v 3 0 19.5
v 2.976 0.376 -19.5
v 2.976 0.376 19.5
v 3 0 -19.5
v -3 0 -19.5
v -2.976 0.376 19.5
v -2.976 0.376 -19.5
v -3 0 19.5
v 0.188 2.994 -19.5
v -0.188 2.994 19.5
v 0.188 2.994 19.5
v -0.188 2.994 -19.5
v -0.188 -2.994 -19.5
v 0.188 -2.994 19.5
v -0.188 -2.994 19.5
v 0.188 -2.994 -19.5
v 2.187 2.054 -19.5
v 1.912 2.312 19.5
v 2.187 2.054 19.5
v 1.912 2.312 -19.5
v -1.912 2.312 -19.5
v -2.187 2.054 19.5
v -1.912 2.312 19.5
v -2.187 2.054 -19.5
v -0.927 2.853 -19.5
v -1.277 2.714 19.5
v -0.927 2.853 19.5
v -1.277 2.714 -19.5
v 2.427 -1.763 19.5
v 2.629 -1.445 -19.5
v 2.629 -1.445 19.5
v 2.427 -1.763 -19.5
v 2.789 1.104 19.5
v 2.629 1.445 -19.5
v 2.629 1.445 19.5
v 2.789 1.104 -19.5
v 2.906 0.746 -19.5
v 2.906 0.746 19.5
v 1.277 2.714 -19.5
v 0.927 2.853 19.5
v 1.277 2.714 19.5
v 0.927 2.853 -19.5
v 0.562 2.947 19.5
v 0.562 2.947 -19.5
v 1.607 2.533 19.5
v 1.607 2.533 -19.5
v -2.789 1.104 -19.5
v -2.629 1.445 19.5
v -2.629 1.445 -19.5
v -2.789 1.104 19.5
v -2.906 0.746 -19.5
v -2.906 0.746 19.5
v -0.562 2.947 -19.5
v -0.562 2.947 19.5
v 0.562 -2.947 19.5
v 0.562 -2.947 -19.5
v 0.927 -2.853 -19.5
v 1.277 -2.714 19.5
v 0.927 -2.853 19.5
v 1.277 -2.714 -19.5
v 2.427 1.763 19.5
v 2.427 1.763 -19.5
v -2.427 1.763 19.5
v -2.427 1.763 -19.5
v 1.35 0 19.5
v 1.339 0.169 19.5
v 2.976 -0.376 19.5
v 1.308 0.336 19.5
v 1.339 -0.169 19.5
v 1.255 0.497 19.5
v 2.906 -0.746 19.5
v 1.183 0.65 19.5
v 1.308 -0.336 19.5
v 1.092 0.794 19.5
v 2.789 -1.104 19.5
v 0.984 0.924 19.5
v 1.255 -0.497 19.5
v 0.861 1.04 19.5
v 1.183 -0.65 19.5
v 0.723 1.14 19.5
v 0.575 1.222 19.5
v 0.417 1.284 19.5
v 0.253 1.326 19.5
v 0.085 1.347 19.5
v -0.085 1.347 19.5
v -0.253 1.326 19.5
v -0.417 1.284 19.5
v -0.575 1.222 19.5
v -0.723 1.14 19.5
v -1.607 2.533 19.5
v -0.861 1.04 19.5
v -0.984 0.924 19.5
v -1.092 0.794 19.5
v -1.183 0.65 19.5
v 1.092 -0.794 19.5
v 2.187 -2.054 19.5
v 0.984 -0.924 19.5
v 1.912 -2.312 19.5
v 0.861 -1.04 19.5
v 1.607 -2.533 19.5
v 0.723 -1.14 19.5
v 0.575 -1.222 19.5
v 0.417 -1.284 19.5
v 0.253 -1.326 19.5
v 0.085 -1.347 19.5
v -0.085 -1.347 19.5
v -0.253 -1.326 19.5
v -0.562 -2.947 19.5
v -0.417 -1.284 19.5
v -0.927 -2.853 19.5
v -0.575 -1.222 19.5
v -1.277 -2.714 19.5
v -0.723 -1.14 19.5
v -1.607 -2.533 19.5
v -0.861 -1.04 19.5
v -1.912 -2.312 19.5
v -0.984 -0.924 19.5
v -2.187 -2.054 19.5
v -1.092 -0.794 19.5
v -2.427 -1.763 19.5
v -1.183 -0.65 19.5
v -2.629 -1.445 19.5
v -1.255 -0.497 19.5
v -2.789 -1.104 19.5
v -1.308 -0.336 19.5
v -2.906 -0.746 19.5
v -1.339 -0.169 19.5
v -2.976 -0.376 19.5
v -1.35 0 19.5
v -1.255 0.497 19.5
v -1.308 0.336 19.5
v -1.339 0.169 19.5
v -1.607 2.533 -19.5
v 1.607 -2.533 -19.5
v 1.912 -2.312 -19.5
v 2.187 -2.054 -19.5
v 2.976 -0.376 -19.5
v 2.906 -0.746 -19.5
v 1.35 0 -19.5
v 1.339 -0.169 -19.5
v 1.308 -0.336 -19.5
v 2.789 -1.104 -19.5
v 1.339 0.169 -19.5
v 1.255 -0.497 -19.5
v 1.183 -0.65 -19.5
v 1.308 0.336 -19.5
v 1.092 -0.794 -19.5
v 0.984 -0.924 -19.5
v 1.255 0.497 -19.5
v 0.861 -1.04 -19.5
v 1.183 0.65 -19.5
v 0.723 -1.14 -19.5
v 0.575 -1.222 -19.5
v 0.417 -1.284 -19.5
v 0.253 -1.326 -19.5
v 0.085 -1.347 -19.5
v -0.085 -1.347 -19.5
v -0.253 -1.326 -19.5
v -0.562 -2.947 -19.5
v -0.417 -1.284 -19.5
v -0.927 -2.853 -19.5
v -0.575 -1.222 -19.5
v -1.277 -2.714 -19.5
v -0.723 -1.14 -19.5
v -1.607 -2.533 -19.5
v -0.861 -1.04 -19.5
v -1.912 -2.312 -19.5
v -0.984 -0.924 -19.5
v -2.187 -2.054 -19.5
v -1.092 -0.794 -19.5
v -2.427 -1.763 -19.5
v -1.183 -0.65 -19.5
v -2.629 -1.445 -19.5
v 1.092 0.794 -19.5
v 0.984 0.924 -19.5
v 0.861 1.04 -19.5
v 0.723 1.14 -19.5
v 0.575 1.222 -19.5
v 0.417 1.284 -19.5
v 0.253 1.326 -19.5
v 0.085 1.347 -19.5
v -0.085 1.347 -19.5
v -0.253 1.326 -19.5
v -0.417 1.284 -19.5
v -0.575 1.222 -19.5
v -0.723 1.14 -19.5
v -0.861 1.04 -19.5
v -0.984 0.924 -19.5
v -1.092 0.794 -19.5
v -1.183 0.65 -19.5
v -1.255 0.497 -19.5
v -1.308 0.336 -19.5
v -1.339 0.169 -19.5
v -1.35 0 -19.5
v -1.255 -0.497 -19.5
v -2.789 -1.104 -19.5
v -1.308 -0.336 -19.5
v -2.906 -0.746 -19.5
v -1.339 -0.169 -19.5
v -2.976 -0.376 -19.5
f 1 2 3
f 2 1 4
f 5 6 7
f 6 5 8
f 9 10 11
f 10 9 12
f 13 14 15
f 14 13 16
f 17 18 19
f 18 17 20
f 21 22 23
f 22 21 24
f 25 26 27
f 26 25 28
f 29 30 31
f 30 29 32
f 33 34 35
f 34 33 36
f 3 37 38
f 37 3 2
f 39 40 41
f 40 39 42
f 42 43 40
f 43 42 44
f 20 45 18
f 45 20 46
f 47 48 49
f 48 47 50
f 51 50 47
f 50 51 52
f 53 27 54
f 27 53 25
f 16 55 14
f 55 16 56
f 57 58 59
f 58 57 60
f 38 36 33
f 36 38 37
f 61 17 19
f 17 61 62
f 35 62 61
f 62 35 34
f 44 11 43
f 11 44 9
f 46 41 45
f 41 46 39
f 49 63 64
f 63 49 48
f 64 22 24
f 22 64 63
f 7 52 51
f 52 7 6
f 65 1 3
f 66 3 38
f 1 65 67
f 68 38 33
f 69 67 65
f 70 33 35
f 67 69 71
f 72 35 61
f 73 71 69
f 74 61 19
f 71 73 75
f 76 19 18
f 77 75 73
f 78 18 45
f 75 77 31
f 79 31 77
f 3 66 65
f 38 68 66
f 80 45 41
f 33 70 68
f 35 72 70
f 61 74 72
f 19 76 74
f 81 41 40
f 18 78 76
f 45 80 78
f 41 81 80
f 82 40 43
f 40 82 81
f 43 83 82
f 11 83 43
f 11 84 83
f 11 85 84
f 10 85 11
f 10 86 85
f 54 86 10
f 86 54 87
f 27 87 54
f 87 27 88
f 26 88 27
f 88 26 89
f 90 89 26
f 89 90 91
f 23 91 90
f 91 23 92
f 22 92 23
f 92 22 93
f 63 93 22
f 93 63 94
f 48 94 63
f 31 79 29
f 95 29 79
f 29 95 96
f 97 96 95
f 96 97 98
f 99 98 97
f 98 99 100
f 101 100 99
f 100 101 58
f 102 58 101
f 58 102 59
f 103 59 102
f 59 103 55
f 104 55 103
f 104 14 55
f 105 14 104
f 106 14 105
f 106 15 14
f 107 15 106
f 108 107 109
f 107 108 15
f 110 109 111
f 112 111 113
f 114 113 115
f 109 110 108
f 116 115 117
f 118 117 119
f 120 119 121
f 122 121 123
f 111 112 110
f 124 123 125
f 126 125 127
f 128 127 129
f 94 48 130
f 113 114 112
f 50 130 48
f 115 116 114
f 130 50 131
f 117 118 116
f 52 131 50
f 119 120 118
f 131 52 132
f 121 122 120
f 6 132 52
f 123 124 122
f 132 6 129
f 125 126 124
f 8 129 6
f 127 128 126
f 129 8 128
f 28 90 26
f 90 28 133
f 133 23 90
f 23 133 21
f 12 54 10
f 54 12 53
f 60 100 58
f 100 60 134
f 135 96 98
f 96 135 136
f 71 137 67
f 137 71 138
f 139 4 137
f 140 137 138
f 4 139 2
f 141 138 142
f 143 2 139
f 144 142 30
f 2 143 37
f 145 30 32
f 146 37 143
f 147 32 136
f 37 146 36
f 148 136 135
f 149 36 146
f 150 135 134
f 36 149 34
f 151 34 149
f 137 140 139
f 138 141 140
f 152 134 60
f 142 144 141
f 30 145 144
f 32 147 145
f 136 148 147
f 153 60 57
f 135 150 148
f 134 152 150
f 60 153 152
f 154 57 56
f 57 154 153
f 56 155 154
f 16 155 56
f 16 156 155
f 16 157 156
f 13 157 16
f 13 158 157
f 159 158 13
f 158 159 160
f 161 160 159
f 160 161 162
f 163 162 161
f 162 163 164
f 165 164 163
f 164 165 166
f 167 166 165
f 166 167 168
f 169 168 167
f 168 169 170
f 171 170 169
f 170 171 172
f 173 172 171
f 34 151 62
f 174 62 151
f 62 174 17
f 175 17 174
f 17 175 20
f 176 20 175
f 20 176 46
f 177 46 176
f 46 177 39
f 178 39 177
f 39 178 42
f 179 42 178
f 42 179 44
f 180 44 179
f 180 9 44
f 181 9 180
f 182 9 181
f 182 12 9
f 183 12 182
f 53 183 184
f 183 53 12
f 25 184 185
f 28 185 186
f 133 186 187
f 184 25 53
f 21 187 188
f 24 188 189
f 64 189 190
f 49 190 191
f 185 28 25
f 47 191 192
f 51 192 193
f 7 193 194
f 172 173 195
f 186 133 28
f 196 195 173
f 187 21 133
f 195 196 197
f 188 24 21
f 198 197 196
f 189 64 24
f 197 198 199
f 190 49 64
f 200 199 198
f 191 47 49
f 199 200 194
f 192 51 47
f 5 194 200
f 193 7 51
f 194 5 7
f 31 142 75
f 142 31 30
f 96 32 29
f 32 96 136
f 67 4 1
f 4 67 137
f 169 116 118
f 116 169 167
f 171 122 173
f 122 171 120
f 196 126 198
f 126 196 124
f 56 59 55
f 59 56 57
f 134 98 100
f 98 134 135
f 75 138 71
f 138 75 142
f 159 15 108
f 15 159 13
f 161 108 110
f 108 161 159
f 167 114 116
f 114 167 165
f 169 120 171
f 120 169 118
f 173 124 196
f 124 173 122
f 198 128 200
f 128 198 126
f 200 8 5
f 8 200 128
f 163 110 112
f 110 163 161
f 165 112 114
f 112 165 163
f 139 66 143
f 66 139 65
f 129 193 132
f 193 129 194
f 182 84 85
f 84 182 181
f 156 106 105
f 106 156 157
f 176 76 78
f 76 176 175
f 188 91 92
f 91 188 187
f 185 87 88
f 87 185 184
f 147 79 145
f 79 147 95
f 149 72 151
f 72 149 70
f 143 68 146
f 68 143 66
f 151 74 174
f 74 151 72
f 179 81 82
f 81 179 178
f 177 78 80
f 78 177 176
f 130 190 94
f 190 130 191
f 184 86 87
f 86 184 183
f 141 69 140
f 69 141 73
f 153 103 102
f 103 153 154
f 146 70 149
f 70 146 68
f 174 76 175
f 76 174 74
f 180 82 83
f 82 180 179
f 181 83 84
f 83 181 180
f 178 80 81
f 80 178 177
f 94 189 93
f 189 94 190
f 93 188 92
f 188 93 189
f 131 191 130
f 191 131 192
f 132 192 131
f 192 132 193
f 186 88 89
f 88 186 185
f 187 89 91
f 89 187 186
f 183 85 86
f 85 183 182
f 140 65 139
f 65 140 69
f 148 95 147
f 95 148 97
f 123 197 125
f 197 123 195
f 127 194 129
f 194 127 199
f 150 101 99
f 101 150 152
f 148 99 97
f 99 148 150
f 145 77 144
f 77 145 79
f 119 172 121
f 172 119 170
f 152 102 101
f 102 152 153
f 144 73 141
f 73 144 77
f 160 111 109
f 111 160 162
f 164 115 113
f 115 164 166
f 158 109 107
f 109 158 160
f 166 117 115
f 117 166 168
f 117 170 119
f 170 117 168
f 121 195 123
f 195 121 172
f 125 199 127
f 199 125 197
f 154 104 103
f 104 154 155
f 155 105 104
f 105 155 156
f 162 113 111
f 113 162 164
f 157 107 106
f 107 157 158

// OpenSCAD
$fn = 50;


difference() {
	union() {
		translate(v = [0, 0, -19.5000000000]) {
			cylinder(h = 39, r = 3.0000000000);
		}
	}
	union() {
		translate(v = [0, 0, -100.0000000000]) {
			cylinder(h = 200, r = 1.3500000000);
		}
	}
}
